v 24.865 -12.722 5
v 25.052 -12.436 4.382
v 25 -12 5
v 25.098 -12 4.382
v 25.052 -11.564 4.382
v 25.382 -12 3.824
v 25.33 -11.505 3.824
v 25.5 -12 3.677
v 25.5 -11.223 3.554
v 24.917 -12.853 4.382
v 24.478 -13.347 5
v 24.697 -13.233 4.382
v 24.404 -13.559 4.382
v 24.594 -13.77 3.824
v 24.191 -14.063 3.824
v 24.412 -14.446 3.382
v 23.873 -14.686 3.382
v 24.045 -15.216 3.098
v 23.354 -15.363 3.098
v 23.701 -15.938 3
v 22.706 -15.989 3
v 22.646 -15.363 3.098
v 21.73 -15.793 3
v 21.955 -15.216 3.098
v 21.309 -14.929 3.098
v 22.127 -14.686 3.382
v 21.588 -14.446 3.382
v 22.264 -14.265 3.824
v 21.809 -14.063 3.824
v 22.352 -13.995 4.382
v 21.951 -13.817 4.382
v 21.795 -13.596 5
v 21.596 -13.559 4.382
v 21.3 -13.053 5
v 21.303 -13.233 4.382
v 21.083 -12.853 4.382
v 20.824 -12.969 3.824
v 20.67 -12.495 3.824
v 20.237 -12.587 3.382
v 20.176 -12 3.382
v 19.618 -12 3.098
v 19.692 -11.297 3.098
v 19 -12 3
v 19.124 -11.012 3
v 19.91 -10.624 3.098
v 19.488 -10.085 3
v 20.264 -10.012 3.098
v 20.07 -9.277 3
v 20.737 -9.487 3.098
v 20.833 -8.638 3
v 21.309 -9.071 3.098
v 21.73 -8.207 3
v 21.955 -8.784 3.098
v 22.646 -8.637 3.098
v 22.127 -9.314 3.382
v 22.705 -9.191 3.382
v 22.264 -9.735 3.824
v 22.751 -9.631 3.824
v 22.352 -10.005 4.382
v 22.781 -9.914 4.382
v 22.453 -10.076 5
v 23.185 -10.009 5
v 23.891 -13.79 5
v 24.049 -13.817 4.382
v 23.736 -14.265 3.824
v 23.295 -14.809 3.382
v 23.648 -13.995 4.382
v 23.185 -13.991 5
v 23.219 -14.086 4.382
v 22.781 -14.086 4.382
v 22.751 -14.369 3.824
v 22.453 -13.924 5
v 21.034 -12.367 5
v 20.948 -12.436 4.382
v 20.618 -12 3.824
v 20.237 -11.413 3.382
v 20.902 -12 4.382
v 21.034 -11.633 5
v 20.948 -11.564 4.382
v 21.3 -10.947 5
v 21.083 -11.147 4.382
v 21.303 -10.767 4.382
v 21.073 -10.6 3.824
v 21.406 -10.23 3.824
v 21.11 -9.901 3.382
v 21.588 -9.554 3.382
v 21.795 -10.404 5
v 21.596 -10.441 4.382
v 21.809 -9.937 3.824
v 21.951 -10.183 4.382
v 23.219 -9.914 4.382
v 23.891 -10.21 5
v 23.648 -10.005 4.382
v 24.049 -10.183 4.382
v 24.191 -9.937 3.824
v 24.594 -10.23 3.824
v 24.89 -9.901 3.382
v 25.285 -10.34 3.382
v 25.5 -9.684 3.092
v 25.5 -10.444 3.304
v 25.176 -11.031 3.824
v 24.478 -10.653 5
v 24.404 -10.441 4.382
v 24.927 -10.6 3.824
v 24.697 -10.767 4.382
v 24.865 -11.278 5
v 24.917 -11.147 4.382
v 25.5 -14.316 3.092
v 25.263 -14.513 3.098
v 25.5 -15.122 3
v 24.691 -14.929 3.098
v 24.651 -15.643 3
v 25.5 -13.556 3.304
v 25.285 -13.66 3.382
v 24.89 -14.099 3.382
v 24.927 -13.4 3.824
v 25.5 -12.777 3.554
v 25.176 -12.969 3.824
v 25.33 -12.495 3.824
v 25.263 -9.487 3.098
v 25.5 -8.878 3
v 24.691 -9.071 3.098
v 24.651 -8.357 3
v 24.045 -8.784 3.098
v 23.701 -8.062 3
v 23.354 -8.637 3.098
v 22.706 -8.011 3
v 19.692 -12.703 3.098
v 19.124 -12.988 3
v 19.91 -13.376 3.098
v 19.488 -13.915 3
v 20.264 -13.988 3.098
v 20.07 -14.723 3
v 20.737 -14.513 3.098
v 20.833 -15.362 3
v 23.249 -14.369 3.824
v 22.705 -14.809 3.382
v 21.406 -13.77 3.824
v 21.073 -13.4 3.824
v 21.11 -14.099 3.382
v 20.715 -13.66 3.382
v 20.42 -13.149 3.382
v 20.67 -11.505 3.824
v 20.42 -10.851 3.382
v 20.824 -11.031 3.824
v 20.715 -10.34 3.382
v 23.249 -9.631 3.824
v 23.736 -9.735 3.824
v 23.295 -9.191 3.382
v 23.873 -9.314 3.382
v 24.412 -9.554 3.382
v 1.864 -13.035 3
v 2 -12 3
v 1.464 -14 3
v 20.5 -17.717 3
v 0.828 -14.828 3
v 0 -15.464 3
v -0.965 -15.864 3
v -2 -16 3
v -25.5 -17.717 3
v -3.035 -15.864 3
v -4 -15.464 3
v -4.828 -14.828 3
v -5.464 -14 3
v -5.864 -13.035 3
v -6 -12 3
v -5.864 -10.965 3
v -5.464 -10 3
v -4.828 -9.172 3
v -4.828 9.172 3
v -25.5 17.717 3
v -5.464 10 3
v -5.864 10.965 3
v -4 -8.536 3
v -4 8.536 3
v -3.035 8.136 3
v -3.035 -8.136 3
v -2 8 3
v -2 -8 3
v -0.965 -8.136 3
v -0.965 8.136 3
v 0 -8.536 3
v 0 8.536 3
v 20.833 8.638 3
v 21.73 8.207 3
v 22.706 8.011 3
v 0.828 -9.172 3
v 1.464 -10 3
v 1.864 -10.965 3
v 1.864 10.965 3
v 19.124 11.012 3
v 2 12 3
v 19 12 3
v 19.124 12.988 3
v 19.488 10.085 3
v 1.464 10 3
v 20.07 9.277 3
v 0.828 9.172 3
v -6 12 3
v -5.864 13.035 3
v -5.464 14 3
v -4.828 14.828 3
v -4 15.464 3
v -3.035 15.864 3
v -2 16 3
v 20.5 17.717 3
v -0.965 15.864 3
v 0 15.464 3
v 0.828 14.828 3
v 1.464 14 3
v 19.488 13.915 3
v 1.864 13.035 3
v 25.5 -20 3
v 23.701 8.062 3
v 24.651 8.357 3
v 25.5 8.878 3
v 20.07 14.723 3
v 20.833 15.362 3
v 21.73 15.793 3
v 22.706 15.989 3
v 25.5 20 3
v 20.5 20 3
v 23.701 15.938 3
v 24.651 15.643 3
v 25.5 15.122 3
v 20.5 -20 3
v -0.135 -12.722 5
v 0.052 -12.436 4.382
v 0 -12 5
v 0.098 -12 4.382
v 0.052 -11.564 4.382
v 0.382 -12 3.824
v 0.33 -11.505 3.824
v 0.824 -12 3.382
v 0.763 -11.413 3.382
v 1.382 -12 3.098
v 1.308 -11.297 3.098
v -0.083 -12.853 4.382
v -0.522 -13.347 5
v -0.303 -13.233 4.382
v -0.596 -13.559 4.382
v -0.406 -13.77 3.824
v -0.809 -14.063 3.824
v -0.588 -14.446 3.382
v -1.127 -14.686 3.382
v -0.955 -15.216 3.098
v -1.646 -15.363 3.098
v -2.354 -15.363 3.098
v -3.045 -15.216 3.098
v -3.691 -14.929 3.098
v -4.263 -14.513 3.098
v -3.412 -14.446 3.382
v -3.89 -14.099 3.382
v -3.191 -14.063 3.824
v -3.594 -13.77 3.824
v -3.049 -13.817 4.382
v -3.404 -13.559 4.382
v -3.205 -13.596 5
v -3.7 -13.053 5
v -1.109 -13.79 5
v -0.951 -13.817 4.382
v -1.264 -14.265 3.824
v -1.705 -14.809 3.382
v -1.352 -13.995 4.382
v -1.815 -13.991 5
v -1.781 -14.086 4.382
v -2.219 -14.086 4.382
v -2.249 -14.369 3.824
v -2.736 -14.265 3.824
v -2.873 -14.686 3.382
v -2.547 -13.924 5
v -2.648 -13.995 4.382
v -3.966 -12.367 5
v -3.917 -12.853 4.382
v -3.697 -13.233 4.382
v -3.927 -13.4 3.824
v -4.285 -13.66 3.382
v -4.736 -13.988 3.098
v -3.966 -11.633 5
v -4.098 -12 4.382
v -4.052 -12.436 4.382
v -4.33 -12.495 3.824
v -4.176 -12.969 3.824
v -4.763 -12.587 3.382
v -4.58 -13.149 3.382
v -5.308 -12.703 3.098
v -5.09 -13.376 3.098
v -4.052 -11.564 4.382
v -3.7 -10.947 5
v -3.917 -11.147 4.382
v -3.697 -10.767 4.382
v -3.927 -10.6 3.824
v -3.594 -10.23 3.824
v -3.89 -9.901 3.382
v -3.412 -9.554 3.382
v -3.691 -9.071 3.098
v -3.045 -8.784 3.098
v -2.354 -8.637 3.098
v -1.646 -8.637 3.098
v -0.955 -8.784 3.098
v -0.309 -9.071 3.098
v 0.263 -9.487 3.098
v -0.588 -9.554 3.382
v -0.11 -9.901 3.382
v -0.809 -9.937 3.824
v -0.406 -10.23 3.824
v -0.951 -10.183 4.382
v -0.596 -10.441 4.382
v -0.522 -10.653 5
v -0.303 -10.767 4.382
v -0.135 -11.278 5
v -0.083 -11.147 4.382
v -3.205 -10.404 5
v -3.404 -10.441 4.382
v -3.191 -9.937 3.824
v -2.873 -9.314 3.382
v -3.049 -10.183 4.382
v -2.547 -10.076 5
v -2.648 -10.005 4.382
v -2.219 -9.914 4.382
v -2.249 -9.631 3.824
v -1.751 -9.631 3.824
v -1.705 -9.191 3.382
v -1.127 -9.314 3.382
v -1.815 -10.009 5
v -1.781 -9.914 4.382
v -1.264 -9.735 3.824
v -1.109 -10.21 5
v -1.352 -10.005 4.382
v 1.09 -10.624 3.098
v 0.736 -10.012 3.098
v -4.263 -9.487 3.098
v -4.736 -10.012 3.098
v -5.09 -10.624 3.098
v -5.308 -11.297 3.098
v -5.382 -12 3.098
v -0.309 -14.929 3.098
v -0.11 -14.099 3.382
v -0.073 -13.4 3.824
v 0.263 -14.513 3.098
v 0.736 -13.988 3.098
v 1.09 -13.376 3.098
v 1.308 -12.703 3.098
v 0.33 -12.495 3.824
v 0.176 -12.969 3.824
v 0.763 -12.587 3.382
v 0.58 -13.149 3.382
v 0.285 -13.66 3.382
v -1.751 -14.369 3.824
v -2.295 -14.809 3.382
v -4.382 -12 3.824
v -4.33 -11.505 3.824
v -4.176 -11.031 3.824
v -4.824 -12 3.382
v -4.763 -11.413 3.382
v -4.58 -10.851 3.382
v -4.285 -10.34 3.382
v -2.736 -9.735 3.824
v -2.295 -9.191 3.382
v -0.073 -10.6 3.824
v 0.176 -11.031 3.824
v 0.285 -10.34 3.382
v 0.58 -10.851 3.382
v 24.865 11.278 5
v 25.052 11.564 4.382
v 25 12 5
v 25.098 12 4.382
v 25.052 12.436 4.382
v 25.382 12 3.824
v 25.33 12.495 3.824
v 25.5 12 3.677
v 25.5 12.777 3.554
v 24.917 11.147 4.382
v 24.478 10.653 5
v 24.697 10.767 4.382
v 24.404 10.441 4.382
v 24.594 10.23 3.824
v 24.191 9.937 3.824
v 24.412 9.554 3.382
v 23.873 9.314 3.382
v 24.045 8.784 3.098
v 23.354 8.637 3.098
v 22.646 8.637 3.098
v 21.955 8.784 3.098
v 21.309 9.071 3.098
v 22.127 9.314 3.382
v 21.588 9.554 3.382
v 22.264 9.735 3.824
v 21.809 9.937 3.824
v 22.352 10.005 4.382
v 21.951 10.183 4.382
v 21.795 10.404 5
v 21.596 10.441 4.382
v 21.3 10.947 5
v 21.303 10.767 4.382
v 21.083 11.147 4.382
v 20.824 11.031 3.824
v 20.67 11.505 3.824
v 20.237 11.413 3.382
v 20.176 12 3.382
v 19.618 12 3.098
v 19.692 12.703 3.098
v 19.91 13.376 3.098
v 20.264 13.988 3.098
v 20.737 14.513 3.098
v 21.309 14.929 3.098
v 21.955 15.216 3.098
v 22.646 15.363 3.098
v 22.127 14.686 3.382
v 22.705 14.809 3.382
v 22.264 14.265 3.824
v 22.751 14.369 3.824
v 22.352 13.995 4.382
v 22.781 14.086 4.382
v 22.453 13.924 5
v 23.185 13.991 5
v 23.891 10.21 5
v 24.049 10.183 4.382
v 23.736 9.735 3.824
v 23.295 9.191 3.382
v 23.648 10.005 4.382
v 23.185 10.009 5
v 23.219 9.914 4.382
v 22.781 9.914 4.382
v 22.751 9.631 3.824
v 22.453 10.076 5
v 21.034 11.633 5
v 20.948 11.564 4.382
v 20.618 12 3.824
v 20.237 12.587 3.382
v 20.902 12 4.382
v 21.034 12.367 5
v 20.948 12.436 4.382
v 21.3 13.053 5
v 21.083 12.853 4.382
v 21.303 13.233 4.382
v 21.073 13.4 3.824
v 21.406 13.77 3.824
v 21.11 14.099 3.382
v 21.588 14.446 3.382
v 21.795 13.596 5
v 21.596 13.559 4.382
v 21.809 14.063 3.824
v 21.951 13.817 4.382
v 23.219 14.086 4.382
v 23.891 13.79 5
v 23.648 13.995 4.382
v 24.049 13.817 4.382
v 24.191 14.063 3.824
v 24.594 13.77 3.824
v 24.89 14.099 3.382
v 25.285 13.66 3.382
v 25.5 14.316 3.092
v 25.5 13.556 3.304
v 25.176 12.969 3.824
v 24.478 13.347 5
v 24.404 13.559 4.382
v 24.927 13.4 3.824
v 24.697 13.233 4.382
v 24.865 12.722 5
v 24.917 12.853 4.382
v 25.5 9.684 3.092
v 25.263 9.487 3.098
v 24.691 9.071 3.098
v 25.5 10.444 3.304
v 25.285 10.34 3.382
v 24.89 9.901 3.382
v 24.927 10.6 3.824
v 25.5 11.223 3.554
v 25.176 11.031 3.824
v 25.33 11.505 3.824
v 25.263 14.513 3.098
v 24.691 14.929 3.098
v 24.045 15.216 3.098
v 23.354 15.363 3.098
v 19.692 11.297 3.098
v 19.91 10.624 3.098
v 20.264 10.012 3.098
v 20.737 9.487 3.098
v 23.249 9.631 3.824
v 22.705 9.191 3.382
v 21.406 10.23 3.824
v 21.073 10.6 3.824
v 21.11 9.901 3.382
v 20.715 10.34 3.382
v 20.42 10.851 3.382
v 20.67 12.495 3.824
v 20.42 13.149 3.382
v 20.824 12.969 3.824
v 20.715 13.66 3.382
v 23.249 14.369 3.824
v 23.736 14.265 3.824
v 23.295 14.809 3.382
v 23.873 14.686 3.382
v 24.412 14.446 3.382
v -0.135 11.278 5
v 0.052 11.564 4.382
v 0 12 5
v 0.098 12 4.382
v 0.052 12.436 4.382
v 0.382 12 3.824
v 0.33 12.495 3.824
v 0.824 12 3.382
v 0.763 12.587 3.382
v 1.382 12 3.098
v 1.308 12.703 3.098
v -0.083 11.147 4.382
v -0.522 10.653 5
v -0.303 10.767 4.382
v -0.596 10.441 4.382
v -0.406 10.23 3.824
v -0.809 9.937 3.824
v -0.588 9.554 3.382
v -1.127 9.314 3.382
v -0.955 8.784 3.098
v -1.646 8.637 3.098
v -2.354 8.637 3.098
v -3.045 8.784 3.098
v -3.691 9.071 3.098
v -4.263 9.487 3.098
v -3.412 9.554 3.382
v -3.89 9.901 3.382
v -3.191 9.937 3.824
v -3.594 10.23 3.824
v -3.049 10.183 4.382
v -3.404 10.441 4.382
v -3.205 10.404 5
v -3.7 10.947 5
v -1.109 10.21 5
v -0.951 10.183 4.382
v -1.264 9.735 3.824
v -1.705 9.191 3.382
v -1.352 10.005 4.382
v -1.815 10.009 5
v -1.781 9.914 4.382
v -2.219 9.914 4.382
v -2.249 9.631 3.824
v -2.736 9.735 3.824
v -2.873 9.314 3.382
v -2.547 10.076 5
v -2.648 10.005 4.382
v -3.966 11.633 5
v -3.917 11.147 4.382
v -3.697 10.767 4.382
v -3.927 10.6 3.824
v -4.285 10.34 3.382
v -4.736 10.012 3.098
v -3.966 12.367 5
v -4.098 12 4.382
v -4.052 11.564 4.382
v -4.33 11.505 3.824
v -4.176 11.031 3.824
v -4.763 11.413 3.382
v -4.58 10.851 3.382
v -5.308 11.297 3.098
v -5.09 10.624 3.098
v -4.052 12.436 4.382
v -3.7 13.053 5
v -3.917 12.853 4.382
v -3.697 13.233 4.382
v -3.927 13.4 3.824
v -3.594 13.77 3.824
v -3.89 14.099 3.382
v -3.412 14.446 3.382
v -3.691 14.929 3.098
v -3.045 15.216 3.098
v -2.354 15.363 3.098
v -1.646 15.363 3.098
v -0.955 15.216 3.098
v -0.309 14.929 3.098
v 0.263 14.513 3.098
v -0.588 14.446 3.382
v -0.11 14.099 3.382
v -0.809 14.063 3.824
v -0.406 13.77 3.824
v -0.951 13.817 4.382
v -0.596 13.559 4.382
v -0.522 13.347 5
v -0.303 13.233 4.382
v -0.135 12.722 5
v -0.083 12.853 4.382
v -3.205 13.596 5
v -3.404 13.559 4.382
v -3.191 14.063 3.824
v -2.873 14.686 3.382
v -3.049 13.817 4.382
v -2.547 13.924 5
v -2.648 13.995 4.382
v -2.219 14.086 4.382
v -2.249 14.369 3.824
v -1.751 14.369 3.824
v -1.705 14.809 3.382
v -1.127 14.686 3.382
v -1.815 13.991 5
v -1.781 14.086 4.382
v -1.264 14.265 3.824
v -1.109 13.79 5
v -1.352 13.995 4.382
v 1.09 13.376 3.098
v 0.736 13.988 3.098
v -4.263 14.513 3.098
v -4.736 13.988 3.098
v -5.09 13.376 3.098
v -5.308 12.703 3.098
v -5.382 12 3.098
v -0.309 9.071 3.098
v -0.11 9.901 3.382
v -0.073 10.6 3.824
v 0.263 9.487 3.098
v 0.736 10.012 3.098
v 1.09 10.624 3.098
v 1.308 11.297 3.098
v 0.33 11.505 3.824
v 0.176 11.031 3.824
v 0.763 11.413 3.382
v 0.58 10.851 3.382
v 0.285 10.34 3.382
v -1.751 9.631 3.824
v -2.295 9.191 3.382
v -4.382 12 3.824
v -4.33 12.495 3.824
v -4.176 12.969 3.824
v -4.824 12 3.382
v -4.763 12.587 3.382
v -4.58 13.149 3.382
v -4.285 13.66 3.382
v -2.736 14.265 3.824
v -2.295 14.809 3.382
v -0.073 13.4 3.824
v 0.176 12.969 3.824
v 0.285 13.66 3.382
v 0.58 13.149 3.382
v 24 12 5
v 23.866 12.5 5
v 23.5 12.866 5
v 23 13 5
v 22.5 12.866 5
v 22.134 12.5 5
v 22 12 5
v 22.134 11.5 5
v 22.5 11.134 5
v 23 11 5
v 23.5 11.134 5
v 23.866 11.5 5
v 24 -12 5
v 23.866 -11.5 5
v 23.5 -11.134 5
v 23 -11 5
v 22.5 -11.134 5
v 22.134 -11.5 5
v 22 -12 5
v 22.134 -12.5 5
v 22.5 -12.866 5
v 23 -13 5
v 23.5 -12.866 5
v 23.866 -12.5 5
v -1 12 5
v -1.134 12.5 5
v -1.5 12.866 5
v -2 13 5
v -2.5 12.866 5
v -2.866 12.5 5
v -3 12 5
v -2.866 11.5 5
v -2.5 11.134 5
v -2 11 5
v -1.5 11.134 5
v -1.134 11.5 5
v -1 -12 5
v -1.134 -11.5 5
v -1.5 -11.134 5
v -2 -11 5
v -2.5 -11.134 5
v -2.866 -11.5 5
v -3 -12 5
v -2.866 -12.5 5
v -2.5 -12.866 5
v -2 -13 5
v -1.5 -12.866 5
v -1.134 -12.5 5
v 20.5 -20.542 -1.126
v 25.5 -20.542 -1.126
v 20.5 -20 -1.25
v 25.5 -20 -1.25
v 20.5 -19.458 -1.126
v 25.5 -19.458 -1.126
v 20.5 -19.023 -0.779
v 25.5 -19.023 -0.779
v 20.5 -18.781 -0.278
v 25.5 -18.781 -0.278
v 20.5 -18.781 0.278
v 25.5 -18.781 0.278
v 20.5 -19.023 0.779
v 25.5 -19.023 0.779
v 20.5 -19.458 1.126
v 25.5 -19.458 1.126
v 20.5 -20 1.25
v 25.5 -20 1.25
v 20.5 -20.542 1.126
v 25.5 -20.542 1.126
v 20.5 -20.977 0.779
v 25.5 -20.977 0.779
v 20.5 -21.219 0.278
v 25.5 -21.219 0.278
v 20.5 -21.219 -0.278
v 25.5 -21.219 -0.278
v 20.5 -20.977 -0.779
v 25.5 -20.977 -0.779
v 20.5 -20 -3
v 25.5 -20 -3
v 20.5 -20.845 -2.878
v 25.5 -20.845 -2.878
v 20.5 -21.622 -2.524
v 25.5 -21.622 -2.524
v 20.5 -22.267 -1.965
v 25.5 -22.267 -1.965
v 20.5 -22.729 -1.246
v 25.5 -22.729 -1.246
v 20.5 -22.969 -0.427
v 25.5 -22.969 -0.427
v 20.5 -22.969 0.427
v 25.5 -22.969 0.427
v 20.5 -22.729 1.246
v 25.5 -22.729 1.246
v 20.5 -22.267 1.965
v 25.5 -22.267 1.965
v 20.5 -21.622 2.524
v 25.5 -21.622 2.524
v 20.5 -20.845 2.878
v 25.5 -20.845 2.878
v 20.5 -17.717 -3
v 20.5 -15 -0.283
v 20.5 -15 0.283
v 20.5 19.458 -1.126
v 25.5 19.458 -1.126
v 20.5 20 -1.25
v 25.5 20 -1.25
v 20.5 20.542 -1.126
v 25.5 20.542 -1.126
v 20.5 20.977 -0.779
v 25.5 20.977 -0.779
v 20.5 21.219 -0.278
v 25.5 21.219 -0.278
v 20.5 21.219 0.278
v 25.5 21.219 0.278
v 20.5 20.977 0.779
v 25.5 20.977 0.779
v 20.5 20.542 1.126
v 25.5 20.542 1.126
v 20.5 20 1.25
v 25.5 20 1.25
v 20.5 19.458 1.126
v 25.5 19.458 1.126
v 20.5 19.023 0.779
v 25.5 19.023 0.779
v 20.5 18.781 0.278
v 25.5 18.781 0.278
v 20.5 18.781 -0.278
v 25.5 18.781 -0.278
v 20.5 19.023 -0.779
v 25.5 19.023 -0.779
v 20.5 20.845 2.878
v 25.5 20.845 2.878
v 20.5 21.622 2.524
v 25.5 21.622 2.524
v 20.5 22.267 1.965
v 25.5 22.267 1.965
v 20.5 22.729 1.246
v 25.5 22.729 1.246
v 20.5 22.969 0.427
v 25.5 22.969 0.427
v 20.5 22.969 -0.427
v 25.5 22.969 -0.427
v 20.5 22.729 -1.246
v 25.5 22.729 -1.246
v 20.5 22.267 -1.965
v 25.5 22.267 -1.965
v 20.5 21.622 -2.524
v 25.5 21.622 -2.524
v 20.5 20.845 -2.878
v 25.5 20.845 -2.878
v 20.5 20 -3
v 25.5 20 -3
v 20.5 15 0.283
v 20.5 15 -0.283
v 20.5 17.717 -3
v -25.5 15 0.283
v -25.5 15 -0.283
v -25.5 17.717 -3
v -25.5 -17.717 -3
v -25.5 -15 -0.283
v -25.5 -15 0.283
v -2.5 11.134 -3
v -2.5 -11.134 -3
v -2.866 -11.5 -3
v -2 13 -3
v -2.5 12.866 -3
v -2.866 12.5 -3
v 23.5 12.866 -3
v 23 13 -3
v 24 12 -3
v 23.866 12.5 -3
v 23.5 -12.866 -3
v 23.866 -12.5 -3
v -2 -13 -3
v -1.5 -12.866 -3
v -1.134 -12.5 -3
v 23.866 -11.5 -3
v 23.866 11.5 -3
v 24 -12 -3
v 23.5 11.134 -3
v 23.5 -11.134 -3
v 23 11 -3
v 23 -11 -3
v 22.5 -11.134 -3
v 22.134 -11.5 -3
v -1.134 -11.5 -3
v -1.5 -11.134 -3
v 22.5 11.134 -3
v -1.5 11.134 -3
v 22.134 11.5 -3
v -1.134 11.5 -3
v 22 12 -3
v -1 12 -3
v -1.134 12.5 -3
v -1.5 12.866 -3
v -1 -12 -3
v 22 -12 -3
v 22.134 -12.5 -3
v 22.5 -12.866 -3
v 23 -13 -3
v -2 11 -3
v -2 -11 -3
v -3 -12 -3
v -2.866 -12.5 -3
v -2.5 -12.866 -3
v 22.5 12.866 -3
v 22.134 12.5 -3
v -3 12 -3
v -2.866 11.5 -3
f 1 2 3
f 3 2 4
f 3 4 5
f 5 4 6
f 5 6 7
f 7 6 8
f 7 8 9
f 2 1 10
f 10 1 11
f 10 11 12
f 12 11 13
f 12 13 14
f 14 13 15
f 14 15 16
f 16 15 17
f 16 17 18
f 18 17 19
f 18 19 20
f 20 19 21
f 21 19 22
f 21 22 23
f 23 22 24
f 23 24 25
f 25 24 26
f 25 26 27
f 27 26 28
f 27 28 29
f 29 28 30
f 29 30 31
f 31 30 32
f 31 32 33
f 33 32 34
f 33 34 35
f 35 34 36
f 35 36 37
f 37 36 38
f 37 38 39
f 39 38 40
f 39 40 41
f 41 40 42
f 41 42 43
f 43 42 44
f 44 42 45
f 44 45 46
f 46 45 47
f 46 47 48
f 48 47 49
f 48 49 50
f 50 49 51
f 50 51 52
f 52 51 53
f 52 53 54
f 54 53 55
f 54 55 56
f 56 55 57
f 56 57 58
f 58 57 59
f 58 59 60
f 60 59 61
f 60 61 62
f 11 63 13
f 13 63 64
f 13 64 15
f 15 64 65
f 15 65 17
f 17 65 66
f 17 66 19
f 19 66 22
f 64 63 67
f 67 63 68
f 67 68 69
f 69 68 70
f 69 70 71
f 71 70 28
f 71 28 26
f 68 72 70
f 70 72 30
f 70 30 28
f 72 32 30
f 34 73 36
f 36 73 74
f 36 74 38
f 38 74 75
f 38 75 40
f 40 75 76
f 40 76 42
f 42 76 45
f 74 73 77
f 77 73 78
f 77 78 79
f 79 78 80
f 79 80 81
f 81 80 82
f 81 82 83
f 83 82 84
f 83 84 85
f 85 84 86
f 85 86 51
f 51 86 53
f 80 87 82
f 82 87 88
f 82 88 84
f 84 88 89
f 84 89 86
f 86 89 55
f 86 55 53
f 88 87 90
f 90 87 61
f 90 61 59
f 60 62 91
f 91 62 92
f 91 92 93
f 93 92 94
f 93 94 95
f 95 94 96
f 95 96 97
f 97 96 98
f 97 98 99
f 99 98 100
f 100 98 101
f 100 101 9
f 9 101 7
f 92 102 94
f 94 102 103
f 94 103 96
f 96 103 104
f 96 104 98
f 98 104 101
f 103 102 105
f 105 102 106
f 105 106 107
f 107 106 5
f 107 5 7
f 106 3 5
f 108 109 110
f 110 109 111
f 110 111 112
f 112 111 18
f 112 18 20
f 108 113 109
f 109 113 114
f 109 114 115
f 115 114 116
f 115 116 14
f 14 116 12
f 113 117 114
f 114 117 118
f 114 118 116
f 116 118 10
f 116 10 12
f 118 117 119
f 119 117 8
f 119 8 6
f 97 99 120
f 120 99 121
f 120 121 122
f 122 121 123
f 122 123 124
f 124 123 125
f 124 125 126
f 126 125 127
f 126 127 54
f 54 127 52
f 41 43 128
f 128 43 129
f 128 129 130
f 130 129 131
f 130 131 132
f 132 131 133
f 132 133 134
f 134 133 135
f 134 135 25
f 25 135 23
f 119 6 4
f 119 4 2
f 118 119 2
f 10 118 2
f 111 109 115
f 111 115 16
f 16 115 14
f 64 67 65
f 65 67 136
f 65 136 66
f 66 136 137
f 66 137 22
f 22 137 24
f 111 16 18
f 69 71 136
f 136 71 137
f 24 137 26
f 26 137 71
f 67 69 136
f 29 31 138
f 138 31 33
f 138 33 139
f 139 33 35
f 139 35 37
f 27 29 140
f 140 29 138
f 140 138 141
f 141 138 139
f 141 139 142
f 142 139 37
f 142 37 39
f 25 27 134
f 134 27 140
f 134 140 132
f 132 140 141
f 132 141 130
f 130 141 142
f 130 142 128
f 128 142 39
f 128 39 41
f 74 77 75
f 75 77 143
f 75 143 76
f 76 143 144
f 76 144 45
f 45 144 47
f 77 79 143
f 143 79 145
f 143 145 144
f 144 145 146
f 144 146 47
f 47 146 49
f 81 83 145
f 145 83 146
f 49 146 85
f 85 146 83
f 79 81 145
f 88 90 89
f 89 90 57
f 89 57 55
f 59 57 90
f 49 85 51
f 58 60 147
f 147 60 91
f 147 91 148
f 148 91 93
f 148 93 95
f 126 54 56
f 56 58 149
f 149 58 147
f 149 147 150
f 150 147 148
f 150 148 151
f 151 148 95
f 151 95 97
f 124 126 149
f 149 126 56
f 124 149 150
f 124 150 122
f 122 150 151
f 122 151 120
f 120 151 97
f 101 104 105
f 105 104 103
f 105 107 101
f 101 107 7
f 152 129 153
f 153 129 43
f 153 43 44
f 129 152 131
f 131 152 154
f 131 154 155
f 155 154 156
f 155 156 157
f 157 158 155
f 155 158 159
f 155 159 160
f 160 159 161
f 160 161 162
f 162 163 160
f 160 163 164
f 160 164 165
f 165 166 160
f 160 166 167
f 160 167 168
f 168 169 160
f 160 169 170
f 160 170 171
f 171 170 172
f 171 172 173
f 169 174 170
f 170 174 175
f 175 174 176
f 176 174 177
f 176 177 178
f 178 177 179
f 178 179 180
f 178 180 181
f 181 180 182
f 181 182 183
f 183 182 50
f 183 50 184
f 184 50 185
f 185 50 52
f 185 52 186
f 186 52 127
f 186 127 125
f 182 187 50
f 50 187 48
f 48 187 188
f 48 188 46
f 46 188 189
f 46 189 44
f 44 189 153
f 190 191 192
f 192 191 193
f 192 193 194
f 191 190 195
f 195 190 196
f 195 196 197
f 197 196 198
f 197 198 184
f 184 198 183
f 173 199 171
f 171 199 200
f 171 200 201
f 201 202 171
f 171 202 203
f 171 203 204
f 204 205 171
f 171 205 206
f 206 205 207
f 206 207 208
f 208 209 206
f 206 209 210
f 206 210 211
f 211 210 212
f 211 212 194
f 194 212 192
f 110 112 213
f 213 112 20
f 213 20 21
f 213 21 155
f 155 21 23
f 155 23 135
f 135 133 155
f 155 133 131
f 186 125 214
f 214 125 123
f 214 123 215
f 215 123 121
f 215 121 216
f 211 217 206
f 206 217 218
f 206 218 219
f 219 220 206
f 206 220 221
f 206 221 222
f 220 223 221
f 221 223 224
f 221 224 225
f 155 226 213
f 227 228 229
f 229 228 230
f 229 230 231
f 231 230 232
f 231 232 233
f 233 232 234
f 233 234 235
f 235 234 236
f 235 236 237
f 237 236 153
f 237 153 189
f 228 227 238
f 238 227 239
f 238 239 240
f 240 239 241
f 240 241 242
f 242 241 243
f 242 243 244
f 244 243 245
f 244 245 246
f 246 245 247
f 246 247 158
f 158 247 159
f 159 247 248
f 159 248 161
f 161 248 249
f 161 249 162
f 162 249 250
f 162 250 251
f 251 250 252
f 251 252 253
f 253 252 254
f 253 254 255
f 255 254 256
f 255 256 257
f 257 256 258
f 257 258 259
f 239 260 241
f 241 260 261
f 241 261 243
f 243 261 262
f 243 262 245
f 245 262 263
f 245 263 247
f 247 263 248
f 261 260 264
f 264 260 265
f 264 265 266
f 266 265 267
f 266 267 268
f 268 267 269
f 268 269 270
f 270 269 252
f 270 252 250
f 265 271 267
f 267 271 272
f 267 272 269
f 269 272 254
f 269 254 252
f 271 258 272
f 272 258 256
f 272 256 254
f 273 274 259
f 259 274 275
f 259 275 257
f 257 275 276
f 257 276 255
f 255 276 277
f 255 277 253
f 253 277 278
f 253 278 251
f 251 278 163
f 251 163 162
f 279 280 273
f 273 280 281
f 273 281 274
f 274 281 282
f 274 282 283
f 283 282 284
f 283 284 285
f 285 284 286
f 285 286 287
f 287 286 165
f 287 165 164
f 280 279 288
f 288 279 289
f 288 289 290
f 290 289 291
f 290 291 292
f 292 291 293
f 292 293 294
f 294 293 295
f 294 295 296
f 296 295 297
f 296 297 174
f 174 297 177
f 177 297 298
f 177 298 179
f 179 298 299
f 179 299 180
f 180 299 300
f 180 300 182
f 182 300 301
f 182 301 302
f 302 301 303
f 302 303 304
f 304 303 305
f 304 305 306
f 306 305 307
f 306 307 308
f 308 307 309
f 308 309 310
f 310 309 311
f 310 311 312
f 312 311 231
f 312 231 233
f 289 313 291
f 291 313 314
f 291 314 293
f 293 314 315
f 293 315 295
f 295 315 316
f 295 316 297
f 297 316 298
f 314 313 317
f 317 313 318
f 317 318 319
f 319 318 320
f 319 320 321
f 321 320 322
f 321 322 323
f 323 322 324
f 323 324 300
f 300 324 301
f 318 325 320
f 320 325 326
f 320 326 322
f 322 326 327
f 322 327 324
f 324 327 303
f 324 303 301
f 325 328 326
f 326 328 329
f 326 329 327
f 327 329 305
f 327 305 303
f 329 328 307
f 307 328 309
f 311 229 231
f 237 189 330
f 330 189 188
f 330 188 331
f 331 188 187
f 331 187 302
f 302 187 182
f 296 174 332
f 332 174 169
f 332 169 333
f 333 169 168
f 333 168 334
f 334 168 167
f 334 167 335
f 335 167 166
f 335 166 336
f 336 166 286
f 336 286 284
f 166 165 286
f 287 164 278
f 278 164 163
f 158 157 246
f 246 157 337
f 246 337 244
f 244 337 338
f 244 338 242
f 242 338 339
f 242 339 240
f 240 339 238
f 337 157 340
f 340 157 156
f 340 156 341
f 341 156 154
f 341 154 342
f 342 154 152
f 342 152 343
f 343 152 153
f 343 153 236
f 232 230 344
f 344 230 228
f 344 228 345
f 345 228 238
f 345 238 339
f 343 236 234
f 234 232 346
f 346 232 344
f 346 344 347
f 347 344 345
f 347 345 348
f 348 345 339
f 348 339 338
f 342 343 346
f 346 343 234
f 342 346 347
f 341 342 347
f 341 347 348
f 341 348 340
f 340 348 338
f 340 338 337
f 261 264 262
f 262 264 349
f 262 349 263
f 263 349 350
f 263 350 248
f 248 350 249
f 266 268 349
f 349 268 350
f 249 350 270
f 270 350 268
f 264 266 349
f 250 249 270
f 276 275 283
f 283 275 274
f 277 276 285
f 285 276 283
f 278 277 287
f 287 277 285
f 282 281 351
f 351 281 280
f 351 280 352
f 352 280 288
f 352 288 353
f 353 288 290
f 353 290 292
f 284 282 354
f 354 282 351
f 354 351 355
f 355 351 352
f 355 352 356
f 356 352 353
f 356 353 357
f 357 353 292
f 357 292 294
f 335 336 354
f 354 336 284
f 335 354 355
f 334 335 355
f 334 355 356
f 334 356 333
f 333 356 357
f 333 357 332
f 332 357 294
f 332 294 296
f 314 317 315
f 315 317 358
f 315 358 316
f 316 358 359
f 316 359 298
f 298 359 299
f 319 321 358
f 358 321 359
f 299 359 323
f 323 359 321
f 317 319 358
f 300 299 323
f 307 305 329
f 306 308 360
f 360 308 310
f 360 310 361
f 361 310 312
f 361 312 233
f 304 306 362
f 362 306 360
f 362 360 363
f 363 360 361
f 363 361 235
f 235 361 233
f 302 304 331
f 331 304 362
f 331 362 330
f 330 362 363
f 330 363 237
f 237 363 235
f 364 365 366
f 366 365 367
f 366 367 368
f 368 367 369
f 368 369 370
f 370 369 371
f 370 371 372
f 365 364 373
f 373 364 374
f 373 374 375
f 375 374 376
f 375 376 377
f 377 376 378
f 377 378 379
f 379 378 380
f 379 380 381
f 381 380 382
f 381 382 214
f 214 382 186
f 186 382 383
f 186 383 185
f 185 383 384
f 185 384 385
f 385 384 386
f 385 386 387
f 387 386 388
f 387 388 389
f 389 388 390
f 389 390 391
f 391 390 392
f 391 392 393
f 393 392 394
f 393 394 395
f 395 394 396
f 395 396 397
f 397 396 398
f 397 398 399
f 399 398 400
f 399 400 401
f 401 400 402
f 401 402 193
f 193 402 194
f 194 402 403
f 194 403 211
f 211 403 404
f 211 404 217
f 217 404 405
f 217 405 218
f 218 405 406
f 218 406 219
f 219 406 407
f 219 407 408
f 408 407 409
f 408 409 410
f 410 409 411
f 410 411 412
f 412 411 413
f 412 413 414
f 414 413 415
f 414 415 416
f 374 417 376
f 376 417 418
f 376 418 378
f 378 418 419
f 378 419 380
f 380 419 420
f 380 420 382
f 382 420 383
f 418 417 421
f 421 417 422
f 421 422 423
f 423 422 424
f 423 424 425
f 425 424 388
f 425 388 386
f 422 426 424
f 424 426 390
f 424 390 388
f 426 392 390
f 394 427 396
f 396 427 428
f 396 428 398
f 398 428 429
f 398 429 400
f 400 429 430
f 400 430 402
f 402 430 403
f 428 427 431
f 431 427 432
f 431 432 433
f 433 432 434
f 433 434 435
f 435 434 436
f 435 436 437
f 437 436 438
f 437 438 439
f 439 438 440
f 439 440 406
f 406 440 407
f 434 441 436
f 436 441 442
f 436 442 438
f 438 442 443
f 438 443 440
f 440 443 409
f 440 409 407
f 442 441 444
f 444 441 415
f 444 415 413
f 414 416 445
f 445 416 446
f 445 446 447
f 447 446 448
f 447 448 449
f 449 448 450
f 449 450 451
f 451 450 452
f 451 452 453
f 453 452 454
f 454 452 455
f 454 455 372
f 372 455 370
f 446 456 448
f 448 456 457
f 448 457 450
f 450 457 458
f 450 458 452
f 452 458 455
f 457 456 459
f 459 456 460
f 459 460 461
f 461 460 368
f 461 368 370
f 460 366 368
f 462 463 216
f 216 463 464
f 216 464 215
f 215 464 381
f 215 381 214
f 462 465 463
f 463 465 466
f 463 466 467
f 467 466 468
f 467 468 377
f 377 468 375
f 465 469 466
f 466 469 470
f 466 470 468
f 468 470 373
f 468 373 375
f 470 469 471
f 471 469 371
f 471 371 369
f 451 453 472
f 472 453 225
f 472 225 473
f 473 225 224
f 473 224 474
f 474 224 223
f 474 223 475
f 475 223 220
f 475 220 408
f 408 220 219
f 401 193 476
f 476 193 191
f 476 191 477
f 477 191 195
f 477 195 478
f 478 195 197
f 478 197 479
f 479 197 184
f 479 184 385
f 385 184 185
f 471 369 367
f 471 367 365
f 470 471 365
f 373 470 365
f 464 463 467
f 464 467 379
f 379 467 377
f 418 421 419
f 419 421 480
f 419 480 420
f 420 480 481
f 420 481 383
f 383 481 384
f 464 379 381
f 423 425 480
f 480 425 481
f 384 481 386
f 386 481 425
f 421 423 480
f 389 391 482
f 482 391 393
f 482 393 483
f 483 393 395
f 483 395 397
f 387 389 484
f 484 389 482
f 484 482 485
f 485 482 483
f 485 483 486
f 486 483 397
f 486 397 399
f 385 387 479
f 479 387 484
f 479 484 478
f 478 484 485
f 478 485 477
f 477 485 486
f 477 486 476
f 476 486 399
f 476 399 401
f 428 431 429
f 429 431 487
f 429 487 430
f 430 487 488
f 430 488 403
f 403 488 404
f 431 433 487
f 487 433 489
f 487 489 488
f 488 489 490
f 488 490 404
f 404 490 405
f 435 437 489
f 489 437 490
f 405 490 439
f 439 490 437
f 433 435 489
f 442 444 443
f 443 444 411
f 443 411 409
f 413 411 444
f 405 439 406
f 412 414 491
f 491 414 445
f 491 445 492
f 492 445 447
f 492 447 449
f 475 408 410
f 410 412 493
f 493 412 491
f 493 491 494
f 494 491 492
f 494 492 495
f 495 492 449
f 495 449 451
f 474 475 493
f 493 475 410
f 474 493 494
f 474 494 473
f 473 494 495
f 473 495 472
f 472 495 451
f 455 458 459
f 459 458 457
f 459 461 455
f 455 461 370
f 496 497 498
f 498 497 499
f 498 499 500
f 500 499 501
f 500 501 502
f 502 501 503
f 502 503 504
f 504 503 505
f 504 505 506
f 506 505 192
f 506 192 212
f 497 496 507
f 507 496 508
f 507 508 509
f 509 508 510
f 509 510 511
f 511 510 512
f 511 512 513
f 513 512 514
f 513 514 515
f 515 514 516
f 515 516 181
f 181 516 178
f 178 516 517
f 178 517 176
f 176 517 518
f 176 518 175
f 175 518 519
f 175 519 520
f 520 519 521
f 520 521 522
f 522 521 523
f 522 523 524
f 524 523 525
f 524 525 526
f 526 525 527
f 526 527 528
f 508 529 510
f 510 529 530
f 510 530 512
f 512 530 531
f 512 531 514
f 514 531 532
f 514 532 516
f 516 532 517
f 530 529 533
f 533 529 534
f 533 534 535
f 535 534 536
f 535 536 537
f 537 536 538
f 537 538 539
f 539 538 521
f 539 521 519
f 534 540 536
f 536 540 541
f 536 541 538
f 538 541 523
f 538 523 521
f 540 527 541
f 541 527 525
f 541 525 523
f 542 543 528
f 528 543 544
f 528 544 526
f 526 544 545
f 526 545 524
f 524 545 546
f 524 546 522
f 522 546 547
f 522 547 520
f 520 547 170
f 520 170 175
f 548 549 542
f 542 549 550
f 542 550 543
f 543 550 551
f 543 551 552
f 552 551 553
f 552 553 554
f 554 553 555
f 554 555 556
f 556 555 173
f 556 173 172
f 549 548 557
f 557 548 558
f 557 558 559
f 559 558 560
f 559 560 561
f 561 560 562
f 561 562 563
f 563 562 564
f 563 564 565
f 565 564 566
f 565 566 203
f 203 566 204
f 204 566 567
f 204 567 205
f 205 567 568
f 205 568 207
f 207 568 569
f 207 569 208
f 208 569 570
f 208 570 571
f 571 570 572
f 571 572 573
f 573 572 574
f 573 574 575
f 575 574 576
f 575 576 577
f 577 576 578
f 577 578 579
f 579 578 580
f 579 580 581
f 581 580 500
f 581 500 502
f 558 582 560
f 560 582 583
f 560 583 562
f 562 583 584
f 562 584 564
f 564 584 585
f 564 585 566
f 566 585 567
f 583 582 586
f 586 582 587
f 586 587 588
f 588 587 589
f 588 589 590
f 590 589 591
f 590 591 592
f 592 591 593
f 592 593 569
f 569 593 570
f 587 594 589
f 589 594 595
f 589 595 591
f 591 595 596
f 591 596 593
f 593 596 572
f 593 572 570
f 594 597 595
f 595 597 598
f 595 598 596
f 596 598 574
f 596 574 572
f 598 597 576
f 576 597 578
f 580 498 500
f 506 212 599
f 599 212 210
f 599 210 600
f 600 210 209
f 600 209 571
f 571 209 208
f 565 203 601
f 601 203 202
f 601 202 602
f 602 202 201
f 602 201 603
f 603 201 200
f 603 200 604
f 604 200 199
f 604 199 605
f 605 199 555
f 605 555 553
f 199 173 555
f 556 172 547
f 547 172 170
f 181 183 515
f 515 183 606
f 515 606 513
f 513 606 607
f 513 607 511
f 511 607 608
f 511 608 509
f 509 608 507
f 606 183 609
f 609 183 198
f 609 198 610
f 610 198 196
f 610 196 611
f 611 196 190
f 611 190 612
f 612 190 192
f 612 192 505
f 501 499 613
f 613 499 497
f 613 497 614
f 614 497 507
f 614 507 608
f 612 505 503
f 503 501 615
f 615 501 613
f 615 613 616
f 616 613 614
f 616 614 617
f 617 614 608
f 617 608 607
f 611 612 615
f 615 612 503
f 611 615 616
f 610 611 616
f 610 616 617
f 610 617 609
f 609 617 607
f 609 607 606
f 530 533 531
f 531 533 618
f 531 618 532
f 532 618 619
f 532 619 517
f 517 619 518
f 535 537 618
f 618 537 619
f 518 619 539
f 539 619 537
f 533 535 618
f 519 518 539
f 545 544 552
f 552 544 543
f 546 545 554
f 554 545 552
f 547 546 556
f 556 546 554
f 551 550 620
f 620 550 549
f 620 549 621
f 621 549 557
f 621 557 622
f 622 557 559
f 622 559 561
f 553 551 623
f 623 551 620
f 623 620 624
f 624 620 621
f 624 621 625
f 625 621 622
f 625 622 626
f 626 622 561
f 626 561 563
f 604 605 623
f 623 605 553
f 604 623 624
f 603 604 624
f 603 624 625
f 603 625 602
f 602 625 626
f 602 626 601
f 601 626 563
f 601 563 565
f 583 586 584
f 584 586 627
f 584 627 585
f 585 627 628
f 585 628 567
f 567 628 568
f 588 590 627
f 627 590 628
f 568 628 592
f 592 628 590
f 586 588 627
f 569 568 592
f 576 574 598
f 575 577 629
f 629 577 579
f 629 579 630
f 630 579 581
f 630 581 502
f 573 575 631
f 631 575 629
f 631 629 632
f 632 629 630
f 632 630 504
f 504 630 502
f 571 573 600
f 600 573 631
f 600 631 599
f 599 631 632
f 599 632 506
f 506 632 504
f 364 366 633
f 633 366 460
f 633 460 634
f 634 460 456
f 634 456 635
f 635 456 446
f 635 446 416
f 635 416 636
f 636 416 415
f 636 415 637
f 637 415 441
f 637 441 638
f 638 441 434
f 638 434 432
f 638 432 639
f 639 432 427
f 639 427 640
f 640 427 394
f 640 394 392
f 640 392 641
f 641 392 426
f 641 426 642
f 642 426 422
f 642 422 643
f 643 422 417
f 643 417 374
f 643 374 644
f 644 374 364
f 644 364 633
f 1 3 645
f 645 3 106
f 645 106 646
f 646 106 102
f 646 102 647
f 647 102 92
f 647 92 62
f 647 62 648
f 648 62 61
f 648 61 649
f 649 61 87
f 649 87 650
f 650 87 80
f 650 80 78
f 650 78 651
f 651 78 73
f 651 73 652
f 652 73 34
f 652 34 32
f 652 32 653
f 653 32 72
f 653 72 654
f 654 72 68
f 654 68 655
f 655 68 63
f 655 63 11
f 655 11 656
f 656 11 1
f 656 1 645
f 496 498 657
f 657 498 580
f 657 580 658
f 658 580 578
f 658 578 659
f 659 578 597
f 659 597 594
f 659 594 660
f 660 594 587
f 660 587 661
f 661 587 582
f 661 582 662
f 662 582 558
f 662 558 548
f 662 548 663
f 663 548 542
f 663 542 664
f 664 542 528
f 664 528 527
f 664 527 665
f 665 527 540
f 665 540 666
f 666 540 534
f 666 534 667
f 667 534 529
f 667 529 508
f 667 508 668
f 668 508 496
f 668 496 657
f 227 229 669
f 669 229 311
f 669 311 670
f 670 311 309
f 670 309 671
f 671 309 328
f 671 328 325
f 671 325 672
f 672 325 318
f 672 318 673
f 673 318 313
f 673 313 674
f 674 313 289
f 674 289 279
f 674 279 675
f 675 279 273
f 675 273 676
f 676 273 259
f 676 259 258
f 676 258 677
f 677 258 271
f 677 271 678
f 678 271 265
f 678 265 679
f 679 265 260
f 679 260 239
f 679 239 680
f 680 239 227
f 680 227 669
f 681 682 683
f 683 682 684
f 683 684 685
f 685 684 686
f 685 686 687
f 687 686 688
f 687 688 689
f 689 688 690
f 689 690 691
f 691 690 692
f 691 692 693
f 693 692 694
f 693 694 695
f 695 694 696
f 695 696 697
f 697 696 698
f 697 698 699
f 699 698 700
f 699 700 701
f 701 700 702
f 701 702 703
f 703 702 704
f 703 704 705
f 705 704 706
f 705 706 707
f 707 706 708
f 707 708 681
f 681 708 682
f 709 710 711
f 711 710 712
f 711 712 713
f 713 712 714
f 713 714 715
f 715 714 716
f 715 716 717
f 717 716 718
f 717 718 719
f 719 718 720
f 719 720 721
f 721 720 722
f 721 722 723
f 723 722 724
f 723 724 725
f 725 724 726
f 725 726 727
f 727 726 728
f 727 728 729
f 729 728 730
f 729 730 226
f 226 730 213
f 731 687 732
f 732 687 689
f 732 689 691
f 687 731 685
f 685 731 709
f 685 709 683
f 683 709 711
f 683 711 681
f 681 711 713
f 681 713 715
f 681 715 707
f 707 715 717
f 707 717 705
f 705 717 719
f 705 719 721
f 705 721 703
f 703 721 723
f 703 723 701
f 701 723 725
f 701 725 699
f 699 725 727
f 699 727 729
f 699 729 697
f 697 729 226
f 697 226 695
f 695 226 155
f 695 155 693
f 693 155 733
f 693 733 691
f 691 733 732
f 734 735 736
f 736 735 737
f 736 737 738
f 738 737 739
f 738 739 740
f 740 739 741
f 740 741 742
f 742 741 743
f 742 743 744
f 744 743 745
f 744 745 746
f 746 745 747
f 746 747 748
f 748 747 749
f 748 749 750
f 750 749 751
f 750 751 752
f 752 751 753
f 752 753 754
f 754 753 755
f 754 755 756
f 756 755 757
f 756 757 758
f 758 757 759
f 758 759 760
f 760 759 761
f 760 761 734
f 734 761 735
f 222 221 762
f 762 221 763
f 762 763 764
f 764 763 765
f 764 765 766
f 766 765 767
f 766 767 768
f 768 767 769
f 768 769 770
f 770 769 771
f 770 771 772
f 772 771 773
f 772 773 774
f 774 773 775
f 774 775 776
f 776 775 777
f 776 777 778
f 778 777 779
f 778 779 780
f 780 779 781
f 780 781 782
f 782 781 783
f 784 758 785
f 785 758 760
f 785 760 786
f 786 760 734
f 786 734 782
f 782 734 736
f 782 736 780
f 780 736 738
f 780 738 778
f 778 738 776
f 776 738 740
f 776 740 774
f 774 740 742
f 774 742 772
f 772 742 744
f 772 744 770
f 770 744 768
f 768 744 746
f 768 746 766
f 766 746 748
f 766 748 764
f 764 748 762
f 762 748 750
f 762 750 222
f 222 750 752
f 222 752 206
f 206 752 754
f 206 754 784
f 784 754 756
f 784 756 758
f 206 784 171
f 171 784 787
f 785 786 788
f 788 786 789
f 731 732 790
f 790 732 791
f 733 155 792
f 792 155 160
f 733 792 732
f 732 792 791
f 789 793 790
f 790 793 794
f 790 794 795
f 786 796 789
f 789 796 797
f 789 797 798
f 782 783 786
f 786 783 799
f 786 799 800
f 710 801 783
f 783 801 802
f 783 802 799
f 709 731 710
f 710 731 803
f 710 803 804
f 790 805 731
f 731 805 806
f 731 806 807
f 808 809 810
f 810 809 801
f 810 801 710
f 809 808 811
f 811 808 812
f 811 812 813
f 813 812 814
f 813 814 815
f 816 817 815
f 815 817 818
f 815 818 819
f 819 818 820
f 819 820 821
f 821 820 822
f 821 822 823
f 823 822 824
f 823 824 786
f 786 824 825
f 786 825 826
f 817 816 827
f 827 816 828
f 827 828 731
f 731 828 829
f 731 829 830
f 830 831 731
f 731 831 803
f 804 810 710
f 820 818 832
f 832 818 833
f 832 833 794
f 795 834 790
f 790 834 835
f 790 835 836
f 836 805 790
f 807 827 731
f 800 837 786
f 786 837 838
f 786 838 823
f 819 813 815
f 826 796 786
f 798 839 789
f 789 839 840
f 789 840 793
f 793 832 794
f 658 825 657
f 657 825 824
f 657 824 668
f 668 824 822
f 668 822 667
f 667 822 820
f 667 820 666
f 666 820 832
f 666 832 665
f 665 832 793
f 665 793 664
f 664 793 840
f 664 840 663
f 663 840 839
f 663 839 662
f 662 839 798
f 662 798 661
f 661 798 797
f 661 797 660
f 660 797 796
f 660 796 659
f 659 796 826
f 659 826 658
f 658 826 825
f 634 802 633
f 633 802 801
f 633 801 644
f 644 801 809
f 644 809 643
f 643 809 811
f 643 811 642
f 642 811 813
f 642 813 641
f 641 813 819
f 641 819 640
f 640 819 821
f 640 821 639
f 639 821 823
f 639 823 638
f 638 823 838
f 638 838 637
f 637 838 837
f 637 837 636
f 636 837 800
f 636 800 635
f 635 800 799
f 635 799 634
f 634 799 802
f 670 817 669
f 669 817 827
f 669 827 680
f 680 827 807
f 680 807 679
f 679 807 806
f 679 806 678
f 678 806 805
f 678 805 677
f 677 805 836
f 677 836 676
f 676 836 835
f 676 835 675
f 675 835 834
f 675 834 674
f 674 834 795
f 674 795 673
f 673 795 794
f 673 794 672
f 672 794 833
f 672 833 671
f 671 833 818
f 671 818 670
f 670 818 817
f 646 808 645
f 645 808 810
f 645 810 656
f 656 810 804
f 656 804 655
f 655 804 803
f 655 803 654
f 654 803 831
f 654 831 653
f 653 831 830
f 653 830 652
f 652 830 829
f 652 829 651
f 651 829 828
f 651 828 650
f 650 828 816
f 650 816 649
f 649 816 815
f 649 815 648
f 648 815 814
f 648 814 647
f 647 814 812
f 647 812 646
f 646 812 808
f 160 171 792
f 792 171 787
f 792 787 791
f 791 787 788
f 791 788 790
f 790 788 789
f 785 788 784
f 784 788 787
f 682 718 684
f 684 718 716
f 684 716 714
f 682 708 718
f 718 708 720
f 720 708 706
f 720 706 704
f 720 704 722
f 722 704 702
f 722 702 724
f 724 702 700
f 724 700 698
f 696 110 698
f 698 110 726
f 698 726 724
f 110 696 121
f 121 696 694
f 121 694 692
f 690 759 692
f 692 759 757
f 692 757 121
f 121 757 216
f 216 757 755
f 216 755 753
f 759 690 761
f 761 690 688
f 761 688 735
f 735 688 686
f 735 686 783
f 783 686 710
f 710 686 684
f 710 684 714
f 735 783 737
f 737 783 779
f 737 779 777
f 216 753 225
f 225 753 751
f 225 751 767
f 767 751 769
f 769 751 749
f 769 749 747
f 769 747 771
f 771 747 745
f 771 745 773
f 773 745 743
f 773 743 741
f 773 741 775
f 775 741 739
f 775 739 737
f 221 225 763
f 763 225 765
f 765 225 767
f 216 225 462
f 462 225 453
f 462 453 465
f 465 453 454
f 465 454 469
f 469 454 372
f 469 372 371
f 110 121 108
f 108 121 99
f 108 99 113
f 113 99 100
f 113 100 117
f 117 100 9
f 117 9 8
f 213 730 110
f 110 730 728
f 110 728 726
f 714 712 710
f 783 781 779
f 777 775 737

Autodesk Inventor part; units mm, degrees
ref_plane "YZ Plane" through (0, 0, 0) normal (1, 0, 0) x (0, 1, 0)
ref_plane "XZ Plane" through (0, 0, 0) normal (0, 1, 0) x (-1, 0, 0)
ref_plane "XY Plane" through (0, 0, 0) normal (0, 0, 1) x (1, 0, 0)
sketch "스케치1" plane through (0, 0, 0) normal (0, 0, 1) x (1, 0, 0)
  line L0 (-25.5, 15) -> (25.5, 15)
  line L1 (25.5, 15) -> (25.5, -15)
  line L2 (25.5, -15) -> (-25.5, -15)
  line L3 (-25.5, -15) -> (-25.5, 15)
  line L4 (-25.5, 15) -> (25.5, -15) construction
  line L5 (25.5, 15) -> (-25.5, -15) construction
  line L6 (-2, -12) -> (23, -12) construction
  line L7 (23, -12) -> (23, 12) construction
  line L8 (23, 12) -> (-2, 12) construction
  line L9 (-2, 12) -> (-2, -12) construction
  line L10 (-2, -12) -> (23, 12) construction
  line L11 (23, -12) -> (-2, 12) construction
  circle A0 centre (-2, 12) radius 1
  line L12 (10.5, 0) -> (13.8415, 0)
  line L13 (10.5, 0) -> (10.5, -2.9401)
  circle A1 centre (23, 12) radius 1
  circle A2 centre (-2, -12) radius 1
  circle A3 centre (23, -12) radius 1
  point P0 (0, 0)
  dimension "d0" = 51
  dimension "d1" = 30
  dimension "d2" = 2
  dimension "d3" = 15
  dimension "d4" = 24
  dimension "d5" = 25
extrude "돌출1" add sketch "스케치1" along normal mid plane 6
sketch "스케치4" plane through (25.5, -15, -3) normal (1, 0, 0) x (0, 0, -1)
  line L0 (-6, -3) -> (0, -3)
  line L1 (0, -3) -> (0, 33)
  line L2 (0, 33) -> (-6, 33)
  line L3 (-6, 33) -> (-6, -3)
  line L4 (-6, -3) -> (0, 33) construction
  line L5 (0, -3) -> (-6, 33) construction
  line L6 (-6, 33) -> (-3, 30)
  line L7 (-3, 30) -> (0, 33)
  line L8 (0.1414, 32.8586) -> (-3, 29.7172)
  line L9 (-3, 29.7172) -> (-6, 32.7172)
  line L10 (-3, 15) -> (-1.4715, 15)
  line L11 (0.1414, -2.8586) -> (-3, 0.2828)
  line L12 (-3, 0.2828) -> (-6, -2.7172)
  line L13 (0, 30) -> (-6, 30) projected
  line L14 (-6, 0) -> (-6, 30) projected
  line L15 (0, 0) -> (-6, 0) projected
  line L16 (0, 30) -> (0, 0) projected
  point P0 (-6, 0)
  point P1 (0, -2.7172)
  point P2 (-6, 30)
  point P3 (0, 32.7172)
  point P4 (-5, 32.7172)
  point P5 (-2.7172, 0)
  point P6 (-3.2828, 0)
  point P7 (-3.2828, 30)
  point P8 (-2.7172, 30)
  dimension "d25" = 36
  dimension "d27" = 90
  dimension "d28" = 0.2
extrude "돌출3" add sketch "스케치4" against normal up to surface (51 mm away) contours L3 L15 L12 | L11 L15 L1 | L3 L9 L13 | L13 L8 L1
sketch "스케치6" plane through (25.5, -17.7172, 3) normal (1, 0, 0) x (0, 0, -1)
  circle A0 centre (3, 37.7172) radius 3
  circle A1 centre (3, 37.7172) radius 1.25
  line L0 (3, 17.7172) -> (21.0559, 17.7172)
  circle A2 centre (3, -2.2828) radius 3
  circle A3 centre (3, -2.2828) radius 1.25
  line L1 (0, 35.4343) -> (0, 0) projected
  line L2 (0, 35.4343) -> (0, 37.7172)
  line L3 (6, 0) -> (6, 35.4343) projected
  line L4 (6, 37.7172) -> (6, 35.4343)
  line L5 (0, -2.2828) -> (0, 0)
  line L6 (6, -2.2828) -> (6, 0)
  line L7 (3.2828, 32.7172) -> (2.7172, 32.7172) projected
  line L8 (2.7172, 32.7172) -> (0, 35.4343) projected
  line L9 (0, 35.4343) -> (0, 0) projected
  line L10 (0, 0) -> (2.7172, 2.7172) projected
  line L11 (3.2828, 2.7172) -> (2.7172, 2.7172) projected
  line L12 (3.2828, 2.7172) -> (6, 0) projected
  line L13 (6, 0) -> (6, 35.4343) projected
  line L14 (6, 35.4343) -> (3.2828, 32.7172) projected
  dimension "d36" = 6
  dimension "d37" = 2.5
  dimension "d38" = 40
extrude "돌출5" add sketch "스케치6" against normal blind 5 contours A0 | L4 L14 L7 L8 L2 A0 | L10 L11 L12 L6 A2 L5 | A2
sketch "스케치7" plane through (0, 0, 3) normal (0, 0, 1) x (1, 0, 0)
  circle A0 centre (-2, 12) radius 1 projected
  circle A1 centre (-2, 12) radius 2
  circle A2 centre (23, 12) radius 1 projected
  circle A3 centre (23, 12) radius 2
  circle A4 centre (-2, -12) radius 1 projected
  circle A5 centre (-2, -12) radius 2
  circle A6 centre (23, -12) radius 1 projected
  circle A7 centre (23, -12) radius 2
  point P0 (0, 0)
  dimension "d41" = 4
  dimension "d42" = 4
  dimension "d43" = 4
  dimension "d44" = 4
extrude "돌출6" add sketch "스케치7" along normal blind 2
fillet "모깎기1" radius 2 4 edges at (-4, 12, 3) (21, 12, 3) (-4, -12, 3) (21, -12, 3)
properties part number "카메라 홀더"
